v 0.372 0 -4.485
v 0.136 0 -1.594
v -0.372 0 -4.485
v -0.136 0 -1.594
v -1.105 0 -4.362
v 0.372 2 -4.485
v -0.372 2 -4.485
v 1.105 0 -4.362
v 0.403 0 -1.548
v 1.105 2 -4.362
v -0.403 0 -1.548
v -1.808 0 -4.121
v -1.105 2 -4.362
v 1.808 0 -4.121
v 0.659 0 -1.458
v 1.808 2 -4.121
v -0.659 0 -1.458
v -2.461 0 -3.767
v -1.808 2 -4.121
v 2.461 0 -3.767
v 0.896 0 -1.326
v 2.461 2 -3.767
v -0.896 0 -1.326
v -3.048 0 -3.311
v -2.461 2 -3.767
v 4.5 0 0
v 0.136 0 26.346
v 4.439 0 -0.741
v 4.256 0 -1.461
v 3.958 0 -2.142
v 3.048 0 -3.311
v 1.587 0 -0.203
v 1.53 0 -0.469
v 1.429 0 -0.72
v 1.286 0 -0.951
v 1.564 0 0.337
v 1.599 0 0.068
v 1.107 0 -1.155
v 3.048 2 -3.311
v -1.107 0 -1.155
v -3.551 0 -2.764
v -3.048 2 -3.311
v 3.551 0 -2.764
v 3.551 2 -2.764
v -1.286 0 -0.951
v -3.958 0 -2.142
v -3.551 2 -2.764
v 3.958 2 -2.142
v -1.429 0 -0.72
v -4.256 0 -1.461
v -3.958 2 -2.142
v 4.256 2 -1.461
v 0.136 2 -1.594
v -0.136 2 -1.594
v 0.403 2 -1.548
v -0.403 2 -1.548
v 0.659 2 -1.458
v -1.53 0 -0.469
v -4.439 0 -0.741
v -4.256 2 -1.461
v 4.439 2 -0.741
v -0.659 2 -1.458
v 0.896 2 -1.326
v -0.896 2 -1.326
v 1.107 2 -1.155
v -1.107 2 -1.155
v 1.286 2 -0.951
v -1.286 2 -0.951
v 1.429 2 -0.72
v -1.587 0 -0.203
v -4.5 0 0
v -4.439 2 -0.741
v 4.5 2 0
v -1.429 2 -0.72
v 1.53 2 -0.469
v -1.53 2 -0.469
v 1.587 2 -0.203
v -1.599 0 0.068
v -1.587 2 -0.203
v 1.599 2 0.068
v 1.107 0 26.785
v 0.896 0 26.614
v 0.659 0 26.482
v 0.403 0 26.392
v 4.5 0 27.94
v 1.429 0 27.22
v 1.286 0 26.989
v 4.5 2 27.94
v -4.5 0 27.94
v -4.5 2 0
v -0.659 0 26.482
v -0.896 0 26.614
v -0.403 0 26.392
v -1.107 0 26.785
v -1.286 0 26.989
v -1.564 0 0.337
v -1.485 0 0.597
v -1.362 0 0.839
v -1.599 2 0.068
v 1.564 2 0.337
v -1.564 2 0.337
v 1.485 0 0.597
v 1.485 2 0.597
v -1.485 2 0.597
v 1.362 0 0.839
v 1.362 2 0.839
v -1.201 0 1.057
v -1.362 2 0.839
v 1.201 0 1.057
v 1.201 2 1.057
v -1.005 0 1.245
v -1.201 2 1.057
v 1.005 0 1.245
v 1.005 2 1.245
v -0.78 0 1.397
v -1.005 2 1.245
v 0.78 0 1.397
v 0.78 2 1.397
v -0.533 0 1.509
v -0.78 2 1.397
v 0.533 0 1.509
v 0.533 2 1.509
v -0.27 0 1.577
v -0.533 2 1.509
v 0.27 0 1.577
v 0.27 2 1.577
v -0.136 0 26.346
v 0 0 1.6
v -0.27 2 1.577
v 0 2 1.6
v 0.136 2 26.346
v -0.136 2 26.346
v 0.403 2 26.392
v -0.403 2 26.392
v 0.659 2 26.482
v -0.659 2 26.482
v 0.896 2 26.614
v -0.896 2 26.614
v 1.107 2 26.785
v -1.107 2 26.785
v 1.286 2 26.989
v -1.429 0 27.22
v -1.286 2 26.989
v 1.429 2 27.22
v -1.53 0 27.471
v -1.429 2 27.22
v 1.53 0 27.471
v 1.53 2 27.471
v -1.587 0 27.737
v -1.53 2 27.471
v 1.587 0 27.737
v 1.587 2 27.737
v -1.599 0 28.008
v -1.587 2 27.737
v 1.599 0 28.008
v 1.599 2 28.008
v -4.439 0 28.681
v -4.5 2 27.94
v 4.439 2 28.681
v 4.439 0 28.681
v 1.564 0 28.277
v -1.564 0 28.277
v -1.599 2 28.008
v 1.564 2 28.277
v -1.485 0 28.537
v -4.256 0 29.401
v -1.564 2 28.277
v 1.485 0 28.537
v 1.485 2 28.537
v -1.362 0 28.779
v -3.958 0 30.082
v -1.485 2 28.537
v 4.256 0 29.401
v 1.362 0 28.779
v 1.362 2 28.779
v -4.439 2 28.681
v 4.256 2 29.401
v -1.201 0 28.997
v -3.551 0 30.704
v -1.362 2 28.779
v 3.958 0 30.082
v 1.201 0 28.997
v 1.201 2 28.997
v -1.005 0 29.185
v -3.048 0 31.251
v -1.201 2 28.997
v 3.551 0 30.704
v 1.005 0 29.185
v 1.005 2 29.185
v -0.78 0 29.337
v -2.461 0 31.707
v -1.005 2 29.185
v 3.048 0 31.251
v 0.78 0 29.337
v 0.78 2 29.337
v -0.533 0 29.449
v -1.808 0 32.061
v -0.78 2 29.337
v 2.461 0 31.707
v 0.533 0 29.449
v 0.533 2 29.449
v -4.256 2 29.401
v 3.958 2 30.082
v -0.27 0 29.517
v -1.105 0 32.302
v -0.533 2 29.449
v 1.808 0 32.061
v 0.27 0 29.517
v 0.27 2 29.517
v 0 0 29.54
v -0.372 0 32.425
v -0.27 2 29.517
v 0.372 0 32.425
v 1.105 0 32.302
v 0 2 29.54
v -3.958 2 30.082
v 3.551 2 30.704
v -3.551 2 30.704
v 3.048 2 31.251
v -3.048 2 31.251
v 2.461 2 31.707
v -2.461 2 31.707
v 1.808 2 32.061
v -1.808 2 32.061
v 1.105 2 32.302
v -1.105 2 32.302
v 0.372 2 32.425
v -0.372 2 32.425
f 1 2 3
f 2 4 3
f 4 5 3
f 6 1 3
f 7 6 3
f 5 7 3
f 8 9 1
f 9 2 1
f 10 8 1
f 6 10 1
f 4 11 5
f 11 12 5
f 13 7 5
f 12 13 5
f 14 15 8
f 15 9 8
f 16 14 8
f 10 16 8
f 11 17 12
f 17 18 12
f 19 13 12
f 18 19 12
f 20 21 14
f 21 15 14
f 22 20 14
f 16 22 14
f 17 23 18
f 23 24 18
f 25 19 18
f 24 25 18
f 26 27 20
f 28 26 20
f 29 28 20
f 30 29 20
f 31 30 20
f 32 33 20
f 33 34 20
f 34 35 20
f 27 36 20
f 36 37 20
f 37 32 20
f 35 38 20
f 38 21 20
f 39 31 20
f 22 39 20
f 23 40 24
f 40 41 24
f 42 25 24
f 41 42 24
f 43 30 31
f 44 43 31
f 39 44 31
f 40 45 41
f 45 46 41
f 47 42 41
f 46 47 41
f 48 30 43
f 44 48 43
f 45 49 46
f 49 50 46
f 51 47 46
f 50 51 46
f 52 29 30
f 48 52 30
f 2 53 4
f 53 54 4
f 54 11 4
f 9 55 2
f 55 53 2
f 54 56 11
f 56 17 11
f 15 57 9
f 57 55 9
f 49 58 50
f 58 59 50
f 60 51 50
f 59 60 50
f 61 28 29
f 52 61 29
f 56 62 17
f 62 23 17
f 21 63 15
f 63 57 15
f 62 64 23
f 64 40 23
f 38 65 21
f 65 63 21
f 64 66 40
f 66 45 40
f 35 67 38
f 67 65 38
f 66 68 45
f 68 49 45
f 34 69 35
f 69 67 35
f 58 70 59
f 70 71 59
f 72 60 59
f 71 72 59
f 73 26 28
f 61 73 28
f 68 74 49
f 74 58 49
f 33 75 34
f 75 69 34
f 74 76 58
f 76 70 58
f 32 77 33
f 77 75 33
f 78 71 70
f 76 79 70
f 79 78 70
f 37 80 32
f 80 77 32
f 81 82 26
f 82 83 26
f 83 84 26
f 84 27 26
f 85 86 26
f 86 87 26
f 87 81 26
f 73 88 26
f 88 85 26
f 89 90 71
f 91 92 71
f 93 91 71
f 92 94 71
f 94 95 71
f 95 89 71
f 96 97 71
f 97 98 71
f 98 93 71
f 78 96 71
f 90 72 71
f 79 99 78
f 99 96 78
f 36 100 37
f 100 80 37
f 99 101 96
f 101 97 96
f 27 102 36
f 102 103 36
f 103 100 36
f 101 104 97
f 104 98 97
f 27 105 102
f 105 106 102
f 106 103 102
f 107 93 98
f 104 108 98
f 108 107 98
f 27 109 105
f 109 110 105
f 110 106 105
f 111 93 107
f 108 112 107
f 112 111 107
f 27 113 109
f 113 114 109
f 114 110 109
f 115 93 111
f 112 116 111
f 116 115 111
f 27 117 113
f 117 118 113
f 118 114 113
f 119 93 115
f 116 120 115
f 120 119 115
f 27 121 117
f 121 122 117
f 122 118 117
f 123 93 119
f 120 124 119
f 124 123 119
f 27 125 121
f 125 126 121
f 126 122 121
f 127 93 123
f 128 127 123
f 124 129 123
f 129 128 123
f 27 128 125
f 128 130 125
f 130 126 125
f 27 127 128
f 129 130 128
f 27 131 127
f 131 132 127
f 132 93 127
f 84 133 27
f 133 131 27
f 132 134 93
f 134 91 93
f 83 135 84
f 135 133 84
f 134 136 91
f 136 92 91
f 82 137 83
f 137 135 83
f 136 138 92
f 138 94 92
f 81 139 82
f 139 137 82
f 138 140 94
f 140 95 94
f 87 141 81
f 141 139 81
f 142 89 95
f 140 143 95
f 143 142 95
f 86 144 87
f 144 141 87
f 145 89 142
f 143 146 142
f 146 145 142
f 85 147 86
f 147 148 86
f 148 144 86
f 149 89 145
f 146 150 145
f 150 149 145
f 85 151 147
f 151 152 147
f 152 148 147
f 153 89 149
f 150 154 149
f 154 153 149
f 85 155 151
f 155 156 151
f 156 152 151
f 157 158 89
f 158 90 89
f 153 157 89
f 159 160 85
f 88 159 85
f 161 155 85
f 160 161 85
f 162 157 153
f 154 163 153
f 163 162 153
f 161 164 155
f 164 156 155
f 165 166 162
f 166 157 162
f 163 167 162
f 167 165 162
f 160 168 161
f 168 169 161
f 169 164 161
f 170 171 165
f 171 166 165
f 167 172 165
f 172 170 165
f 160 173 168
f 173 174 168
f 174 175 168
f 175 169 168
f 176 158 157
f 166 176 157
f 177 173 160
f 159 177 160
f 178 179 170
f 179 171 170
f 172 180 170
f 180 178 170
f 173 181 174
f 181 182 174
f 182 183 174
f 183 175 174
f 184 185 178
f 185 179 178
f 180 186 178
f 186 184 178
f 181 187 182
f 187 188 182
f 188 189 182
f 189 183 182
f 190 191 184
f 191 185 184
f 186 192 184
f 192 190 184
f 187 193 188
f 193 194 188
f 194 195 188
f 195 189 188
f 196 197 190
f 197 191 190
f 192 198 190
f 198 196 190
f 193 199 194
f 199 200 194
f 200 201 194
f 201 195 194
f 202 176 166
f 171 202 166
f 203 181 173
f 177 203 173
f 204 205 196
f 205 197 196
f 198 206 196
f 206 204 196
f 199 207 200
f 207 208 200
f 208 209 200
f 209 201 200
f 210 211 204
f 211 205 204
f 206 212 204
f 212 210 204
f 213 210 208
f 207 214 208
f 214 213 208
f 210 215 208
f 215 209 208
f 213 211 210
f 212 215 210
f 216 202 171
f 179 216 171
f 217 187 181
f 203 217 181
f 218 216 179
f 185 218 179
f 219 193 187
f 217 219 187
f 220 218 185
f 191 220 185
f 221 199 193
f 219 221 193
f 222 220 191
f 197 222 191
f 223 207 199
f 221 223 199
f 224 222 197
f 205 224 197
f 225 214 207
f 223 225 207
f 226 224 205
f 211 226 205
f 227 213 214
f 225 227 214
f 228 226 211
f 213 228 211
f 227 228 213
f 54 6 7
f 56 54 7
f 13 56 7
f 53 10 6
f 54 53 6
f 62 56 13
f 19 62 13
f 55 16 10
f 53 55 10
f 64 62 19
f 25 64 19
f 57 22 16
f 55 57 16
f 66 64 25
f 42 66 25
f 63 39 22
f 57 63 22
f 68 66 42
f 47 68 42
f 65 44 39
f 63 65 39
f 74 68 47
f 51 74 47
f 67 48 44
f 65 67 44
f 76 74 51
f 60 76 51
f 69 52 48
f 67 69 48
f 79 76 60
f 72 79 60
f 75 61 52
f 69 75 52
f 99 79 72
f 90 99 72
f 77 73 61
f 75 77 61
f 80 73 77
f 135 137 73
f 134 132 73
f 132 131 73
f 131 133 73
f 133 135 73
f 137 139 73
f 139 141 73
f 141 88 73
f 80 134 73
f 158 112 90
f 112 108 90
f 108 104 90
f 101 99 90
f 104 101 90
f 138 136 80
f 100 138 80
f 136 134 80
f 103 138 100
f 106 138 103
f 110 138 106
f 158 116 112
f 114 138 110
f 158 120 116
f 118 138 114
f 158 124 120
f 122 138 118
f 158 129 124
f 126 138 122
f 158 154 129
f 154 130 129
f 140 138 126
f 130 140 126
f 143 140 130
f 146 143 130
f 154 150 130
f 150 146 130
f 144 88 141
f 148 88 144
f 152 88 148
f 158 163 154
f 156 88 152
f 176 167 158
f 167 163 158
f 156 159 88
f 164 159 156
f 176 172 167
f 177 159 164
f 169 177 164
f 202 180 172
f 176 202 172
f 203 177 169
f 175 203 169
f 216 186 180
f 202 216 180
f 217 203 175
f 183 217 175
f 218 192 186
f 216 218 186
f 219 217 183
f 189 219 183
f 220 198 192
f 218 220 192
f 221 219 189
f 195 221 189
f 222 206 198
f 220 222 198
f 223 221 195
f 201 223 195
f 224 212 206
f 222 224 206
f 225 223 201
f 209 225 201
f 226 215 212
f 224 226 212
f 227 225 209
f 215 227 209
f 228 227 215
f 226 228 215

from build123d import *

# Parameters (mm, degrees)
SKETCH1_R           = 4.5
SKETCH1_W           = 9
SKETCH1_H           = 27.94
BOSS_EXTRUDE1_DEPTH = 2
SKETCH2_R           = 1.6
CUT_EXTRUDE1_DEPTH  = 10


with BuildPart() as part:
    # Sketch1 → Boss-Extrude1 (new body)
    with BuildSketch(Plane(origin=(0, 0, 0), x_dir=(1, 0, 0), z_dir=(0, 1, 0))):
        Circle(SKETCH1_R)
        with Locations((0, -27.94)):
            Circle(SKETCH1_R)
        with Locations((0, -13.97)):
            Rectangle(SKETCH1_W, SKETCH1_H)
    extrude(amount=BOSS_EXTRUDE1_DEPTH)

    # Sketch2 → Cut-Extrude1 (cut)
    with BuildSketch(Plane(origin=(0, 2, 0), x_dir=(1, 0, 0), z_dir=(0, 1, 0))):
        with Locations(Location((0, 0, 0), (0, 0, 270))):
            Circle(SKETCH2_R)
        with Locations(Location((0, -27.94, 0), (0, 0, 270))):
            Circle(SKETCH2_R)
    extrude(amount=-CUT_EXTRUDE1_DEPTH, mode=Mode.SUBTRACT)


solid = part.part
